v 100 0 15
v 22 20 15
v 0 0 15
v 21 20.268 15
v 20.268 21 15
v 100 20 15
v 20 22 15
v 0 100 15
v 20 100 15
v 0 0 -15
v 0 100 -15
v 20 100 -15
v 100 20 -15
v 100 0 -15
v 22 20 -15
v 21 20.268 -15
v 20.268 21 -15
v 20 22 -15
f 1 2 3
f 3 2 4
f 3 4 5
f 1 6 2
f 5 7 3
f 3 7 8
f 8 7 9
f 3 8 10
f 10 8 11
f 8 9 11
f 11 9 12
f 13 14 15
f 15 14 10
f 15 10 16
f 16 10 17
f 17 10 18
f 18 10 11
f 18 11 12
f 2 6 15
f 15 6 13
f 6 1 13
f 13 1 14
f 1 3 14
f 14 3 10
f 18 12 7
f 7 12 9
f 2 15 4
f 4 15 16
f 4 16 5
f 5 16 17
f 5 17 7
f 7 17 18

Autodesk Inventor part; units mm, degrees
ref_plane "YZ Plane" through (0, 0, 0) normal (1, 0, 0) x (0, 1, 0)
ref_plane "XZ Plane" through (0, 0, 0) normal (0, 1, 0) x (-1, 0, 0)
ref_plane "XY Plane" through (0, 0, 0) normal (0, 0, 1) x (1, 0, 0)
sketch "Sketch1" plane through (0, 0, 0) normal (0, 0, 1) x (1, 0, 0)
  line L0 (0, 0) -> (100, 0)
  line L1 (100, 0) -> (100, 20)
  line L2 (0, 0) -> (0, 100)
  line L3 (0, 100) -> (20, 100)
  line L4 (20, 100) -> (20, 20)
  line L5 (20, 20) -> (100, 20)
  dimension "d0" = 100
  dimension "d1" = 20
  dimension "d2" = 100
  dimension "d3" = 20
extrude "Extrusion1" add sketch "Sketch1" along normal mid plane 30
fillet "Fillet1" radius 2 1 edges at (20, 20, 0)
properties part number "CE-10.1.3" material "Stainless Steel"
